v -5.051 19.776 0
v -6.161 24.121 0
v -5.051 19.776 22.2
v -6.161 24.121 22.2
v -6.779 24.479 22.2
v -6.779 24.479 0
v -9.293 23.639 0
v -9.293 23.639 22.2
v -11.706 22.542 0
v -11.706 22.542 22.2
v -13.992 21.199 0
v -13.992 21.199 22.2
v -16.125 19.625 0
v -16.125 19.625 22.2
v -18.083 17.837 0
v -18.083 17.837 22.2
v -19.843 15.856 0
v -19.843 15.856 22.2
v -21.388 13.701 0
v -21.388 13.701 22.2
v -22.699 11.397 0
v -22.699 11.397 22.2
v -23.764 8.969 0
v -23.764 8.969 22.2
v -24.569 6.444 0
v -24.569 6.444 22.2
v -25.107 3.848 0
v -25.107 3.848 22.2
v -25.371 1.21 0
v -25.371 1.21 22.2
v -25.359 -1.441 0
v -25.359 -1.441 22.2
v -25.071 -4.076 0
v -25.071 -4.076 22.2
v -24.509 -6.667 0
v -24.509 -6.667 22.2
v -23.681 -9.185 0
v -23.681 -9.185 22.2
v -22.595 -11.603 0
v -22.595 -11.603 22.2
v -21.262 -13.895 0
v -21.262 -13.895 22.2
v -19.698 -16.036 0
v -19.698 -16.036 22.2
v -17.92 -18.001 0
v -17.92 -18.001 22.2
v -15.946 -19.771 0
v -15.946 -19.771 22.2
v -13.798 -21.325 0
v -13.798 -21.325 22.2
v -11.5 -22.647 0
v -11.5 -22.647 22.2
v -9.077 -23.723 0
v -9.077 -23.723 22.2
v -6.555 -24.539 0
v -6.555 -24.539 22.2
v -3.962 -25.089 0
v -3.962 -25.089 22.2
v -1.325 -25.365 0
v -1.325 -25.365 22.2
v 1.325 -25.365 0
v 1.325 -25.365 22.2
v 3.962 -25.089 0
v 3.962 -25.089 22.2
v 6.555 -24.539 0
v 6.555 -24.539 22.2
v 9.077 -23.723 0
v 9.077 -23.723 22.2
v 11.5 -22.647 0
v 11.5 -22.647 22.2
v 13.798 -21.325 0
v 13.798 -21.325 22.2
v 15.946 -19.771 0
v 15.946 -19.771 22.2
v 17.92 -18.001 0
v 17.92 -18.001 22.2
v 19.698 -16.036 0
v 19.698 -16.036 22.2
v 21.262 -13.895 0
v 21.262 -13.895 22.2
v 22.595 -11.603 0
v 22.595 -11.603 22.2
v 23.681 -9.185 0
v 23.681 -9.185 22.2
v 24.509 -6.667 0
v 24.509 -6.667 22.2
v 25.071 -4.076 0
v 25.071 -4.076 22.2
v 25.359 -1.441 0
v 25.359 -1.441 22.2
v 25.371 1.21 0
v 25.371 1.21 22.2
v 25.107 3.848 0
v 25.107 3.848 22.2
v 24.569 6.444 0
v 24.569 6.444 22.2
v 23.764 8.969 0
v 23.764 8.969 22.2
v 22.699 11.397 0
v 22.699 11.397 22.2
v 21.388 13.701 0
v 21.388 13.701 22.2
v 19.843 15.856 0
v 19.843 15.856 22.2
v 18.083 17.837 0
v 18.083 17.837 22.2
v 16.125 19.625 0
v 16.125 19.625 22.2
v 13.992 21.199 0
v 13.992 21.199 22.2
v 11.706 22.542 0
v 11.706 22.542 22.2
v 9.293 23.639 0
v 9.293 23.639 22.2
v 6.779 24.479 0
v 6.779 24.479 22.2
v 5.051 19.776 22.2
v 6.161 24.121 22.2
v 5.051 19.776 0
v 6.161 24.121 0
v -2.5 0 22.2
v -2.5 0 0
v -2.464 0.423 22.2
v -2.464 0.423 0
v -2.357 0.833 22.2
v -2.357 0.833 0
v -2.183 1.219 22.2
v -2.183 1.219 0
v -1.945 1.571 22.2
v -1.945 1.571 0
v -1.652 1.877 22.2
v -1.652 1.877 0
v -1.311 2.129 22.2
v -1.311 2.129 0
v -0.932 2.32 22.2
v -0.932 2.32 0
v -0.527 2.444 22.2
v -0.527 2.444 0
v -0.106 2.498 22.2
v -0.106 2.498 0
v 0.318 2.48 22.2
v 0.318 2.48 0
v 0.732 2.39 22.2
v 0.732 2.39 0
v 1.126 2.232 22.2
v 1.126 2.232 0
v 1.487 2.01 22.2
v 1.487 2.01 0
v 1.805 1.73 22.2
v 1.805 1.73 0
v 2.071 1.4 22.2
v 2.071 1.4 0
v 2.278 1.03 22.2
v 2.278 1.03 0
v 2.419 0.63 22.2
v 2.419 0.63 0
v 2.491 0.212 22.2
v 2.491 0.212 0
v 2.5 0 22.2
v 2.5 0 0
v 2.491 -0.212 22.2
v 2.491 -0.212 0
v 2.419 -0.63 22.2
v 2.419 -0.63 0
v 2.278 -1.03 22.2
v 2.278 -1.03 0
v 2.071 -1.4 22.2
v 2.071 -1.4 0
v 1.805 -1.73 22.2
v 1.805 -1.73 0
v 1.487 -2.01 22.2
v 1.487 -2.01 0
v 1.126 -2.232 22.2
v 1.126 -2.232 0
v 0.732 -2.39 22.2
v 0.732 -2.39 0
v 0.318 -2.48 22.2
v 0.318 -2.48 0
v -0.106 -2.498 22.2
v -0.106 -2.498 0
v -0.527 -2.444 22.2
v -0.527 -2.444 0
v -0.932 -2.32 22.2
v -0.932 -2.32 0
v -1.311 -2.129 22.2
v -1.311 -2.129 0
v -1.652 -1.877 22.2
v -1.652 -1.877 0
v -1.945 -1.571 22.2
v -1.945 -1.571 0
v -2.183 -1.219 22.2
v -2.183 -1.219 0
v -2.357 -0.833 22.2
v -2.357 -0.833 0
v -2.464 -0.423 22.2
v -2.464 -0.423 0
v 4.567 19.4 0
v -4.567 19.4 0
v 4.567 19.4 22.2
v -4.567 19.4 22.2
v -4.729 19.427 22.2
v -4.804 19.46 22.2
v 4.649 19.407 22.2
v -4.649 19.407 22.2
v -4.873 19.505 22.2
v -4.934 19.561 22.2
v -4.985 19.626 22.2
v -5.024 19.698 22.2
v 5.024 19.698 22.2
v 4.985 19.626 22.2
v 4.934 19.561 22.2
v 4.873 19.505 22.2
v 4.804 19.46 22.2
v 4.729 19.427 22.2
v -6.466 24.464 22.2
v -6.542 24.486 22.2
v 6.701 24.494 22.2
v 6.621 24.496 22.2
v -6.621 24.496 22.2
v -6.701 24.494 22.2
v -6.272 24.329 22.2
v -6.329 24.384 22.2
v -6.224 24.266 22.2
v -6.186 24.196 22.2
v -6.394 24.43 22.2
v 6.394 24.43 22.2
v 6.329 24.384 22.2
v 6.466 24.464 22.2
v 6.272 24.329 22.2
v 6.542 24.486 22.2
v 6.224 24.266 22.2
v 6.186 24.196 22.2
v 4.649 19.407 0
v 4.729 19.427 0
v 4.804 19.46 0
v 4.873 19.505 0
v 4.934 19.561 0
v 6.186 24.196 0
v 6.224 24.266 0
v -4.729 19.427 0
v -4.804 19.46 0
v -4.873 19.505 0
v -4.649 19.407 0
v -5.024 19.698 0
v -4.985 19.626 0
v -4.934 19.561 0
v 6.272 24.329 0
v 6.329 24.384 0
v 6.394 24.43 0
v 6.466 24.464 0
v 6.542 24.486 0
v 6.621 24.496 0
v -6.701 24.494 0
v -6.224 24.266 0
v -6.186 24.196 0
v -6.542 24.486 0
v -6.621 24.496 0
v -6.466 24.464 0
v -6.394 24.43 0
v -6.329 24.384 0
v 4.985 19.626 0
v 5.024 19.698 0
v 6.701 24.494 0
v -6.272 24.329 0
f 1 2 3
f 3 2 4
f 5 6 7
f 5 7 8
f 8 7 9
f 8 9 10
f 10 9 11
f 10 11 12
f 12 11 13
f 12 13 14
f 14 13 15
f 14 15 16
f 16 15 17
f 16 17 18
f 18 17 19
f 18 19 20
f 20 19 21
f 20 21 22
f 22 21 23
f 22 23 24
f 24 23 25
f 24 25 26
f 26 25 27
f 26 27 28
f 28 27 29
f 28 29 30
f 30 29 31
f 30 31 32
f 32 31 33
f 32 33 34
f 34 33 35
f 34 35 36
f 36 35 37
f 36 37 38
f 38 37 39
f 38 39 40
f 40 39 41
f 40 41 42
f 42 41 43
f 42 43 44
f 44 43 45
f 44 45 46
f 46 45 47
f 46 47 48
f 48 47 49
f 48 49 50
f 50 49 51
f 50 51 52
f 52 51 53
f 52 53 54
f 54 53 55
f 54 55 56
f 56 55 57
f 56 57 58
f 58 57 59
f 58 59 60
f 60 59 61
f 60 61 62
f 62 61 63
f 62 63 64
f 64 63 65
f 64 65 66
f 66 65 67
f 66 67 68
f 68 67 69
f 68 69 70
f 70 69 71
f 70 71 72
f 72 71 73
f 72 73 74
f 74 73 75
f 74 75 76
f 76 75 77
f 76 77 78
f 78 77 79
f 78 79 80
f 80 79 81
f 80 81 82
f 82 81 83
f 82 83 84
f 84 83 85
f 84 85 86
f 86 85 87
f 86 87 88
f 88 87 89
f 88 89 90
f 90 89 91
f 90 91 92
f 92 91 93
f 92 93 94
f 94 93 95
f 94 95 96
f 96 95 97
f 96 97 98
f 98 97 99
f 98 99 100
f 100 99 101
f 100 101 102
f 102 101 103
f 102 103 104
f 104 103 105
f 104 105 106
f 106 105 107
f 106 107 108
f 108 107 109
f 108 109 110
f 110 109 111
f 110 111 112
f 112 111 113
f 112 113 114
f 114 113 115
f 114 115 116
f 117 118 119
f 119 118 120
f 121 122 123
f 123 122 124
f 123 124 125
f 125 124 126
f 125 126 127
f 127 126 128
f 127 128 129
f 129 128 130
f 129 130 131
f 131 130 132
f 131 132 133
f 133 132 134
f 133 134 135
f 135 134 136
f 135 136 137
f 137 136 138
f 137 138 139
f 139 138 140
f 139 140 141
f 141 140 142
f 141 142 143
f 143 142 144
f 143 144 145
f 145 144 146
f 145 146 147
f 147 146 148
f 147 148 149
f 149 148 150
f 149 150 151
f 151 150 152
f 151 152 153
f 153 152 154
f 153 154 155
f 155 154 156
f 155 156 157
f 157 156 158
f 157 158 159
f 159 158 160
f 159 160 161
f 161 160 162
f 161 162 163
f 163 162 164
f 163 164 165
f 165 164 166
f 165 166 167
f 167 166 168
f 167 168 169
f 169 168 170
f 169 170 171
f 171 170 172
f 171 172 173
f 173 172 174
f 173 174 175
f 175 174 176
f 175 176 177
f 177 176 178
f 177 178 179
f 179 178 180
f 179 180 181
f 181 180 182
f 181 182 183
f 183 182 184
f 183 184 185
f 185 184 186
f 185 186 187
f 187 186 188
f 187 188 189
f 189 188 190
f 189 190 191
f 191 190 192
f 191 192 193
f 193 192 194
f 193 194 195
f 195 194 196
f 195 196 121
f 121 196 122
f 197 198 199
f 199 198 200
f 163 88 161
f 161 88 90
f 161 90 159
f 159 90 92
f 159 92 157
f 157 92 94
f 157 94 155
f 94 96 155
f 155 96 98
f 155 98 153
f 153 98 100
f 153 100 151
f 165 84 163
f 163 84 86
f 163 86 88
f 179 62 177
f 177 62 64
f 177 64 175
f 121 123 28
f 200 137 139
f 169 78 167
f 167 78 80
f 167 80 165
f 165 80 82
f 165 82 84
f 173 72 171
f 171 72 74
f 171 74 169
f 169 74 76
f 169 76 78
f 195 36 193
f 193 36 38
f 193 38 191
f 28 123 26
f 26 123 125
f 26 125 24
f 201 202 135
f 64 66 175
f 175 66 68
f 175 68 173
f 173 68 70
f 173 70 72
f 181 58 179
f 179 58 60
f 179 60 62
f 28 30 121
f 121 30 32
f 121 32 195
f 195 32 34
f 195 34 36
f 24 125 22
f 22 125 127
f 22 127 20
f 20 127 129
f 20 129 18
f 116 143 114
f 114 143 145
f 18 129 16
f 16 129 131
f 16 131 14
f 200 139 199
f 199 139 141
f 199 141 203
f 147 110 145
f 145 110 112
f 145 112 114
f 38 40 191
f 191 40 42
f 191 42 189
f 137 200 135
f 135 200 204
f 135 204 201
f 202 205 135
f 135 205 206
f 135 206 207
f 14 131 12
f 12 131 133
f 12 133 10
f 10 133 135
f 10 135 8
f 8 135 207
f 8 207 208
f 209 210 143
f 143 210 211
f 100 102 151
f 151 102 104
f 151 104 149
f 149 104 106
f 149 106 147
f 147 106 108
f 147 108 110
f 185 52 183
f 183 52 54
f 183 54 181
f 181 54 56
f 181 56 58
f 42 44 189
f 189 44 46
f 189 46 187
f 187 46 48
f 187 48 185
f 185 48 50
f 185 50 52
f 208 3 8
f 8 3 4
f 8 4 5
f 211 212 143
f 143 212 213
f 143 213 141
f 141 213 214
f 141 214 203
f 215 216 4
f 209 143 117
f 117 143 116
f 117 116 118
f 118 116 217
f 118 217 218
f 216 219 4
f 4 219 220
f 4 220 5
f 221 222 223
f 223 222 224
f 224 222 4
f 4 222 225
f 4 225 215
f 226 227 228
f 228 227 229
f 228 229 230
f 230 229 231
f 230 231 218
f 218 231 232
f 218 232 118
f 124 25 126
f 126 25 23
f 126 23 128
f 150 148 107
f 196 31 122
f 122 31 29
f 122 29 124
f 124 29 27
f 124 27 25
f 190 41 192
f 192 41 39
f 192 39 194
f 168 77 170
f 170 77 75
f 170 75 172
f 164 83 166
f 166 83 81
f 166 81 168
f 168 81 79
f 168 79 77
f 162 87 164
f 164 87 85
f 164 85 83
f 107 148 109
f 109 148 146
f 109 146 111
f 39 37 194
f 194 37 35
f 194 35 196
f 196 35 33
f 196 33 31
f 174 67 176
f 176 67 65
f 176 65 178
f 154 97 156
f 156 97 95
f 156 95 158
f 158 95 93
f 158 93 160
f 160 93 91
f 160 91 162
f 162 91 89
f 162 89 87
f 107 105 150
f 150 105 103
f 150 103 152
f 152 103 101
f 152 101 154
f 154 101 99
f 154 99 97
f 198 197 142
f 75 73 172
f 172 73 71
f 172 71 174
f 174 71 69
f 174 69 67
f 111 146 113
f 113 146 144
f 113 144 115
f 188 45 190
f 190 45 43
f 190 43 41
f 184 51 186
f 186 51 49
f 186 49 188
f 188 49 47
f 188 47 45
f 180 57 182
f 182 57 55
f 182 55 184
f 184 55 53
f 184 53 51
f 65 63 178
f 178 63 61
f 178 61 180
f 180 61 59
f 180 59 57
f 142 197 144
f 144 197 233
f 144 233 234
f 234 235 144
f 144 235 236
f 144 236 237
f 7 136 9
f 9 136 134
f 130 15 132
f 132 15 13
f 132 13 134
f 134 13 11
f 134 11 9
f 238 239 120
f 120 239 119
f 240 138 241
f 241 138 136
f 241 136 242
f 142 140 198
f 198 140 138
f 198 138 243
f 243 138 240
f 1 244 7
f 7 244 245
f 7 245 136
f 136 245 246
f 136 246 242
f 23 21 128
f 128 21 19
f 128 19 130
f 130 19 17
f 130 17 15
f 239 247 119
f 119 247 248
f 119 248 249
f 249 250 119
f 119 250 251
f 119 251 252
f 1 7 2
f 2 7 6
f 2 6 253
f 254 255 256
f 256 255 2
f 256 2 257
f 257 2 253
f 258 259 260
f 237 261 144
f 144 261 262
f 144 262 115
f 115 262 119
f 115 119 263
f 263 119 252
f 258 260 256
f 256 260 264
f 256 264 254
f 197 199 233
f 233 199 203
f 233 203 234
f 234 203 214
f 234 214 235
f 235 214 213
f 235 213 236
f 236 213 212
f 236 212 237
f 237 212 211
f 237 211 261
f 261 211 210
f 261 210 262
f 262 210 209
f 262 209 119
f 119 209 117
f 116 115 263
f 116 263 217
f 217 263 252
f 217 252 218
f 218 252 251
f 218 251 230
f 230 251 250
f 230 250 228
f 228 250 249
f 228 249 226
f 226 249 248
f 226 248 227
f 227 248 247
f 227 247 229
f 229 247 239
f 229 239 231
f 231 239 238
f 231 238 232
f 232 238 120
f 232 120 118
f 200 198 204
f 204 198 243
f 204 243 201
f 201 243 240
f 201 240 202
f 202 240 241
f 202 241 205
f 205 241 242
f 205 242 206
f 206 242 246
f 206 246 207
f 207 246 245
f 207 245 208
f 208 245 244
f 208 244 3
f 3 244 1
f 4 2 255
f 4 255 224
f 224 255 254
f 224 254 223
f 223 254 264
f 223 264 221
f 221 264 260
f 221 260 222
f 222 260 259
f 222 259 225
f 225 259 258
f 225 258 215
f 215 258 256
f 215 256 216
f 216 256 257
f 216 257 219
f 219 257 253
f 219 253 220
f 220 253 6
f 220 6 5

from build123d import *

# Parameters (mm, degrees)
SKETCH2_R           = 2.5
BOSS_EXTRUDE2_DEPTH = 22.2
FILLET1_R           = 0.5


with BuildPart() as part:
    # Sketch2 → Boss-Extrude2 (new body)
    with BuildSketch(Plane.XY):
        with BuildLine():
            Line((4.955, 19.4), (-4.955, 19.4))
            Line((-4.955, 19.4), (-6.285688199, 24.609959851))
            ThreePointArc((-6.285688199, 24.609959851), (-15.580492928, -20.060115656), (25.4, 0))
            ThreePointArc((25.4, 0), (20.060115656, 15.580492928), (6.285688199, 24.609959851))
            Line((6.285688199, 24.609959851), (4.955, 19.4))
        make_face()
        Circle(SKETCH2_R, mode=Mode.SUBTRACT)
    extrude(amount=BOSS_EXTRUDE2_DEPTH)

    # Fillet1
    fillet1_edges = [part.edges().sort_by_distance(p)[0] for p in [
        (-4.955, 19.4, 11.1),
        (4.955, 19.4, 11.1),
        (6.285688199, 24.609959851, 11.1),
        (-6.285688199, 24.609959851, 11.1),
    ]]
    fillet(fillet1_edges, radius=FILLET1_R)


solid = part.part
